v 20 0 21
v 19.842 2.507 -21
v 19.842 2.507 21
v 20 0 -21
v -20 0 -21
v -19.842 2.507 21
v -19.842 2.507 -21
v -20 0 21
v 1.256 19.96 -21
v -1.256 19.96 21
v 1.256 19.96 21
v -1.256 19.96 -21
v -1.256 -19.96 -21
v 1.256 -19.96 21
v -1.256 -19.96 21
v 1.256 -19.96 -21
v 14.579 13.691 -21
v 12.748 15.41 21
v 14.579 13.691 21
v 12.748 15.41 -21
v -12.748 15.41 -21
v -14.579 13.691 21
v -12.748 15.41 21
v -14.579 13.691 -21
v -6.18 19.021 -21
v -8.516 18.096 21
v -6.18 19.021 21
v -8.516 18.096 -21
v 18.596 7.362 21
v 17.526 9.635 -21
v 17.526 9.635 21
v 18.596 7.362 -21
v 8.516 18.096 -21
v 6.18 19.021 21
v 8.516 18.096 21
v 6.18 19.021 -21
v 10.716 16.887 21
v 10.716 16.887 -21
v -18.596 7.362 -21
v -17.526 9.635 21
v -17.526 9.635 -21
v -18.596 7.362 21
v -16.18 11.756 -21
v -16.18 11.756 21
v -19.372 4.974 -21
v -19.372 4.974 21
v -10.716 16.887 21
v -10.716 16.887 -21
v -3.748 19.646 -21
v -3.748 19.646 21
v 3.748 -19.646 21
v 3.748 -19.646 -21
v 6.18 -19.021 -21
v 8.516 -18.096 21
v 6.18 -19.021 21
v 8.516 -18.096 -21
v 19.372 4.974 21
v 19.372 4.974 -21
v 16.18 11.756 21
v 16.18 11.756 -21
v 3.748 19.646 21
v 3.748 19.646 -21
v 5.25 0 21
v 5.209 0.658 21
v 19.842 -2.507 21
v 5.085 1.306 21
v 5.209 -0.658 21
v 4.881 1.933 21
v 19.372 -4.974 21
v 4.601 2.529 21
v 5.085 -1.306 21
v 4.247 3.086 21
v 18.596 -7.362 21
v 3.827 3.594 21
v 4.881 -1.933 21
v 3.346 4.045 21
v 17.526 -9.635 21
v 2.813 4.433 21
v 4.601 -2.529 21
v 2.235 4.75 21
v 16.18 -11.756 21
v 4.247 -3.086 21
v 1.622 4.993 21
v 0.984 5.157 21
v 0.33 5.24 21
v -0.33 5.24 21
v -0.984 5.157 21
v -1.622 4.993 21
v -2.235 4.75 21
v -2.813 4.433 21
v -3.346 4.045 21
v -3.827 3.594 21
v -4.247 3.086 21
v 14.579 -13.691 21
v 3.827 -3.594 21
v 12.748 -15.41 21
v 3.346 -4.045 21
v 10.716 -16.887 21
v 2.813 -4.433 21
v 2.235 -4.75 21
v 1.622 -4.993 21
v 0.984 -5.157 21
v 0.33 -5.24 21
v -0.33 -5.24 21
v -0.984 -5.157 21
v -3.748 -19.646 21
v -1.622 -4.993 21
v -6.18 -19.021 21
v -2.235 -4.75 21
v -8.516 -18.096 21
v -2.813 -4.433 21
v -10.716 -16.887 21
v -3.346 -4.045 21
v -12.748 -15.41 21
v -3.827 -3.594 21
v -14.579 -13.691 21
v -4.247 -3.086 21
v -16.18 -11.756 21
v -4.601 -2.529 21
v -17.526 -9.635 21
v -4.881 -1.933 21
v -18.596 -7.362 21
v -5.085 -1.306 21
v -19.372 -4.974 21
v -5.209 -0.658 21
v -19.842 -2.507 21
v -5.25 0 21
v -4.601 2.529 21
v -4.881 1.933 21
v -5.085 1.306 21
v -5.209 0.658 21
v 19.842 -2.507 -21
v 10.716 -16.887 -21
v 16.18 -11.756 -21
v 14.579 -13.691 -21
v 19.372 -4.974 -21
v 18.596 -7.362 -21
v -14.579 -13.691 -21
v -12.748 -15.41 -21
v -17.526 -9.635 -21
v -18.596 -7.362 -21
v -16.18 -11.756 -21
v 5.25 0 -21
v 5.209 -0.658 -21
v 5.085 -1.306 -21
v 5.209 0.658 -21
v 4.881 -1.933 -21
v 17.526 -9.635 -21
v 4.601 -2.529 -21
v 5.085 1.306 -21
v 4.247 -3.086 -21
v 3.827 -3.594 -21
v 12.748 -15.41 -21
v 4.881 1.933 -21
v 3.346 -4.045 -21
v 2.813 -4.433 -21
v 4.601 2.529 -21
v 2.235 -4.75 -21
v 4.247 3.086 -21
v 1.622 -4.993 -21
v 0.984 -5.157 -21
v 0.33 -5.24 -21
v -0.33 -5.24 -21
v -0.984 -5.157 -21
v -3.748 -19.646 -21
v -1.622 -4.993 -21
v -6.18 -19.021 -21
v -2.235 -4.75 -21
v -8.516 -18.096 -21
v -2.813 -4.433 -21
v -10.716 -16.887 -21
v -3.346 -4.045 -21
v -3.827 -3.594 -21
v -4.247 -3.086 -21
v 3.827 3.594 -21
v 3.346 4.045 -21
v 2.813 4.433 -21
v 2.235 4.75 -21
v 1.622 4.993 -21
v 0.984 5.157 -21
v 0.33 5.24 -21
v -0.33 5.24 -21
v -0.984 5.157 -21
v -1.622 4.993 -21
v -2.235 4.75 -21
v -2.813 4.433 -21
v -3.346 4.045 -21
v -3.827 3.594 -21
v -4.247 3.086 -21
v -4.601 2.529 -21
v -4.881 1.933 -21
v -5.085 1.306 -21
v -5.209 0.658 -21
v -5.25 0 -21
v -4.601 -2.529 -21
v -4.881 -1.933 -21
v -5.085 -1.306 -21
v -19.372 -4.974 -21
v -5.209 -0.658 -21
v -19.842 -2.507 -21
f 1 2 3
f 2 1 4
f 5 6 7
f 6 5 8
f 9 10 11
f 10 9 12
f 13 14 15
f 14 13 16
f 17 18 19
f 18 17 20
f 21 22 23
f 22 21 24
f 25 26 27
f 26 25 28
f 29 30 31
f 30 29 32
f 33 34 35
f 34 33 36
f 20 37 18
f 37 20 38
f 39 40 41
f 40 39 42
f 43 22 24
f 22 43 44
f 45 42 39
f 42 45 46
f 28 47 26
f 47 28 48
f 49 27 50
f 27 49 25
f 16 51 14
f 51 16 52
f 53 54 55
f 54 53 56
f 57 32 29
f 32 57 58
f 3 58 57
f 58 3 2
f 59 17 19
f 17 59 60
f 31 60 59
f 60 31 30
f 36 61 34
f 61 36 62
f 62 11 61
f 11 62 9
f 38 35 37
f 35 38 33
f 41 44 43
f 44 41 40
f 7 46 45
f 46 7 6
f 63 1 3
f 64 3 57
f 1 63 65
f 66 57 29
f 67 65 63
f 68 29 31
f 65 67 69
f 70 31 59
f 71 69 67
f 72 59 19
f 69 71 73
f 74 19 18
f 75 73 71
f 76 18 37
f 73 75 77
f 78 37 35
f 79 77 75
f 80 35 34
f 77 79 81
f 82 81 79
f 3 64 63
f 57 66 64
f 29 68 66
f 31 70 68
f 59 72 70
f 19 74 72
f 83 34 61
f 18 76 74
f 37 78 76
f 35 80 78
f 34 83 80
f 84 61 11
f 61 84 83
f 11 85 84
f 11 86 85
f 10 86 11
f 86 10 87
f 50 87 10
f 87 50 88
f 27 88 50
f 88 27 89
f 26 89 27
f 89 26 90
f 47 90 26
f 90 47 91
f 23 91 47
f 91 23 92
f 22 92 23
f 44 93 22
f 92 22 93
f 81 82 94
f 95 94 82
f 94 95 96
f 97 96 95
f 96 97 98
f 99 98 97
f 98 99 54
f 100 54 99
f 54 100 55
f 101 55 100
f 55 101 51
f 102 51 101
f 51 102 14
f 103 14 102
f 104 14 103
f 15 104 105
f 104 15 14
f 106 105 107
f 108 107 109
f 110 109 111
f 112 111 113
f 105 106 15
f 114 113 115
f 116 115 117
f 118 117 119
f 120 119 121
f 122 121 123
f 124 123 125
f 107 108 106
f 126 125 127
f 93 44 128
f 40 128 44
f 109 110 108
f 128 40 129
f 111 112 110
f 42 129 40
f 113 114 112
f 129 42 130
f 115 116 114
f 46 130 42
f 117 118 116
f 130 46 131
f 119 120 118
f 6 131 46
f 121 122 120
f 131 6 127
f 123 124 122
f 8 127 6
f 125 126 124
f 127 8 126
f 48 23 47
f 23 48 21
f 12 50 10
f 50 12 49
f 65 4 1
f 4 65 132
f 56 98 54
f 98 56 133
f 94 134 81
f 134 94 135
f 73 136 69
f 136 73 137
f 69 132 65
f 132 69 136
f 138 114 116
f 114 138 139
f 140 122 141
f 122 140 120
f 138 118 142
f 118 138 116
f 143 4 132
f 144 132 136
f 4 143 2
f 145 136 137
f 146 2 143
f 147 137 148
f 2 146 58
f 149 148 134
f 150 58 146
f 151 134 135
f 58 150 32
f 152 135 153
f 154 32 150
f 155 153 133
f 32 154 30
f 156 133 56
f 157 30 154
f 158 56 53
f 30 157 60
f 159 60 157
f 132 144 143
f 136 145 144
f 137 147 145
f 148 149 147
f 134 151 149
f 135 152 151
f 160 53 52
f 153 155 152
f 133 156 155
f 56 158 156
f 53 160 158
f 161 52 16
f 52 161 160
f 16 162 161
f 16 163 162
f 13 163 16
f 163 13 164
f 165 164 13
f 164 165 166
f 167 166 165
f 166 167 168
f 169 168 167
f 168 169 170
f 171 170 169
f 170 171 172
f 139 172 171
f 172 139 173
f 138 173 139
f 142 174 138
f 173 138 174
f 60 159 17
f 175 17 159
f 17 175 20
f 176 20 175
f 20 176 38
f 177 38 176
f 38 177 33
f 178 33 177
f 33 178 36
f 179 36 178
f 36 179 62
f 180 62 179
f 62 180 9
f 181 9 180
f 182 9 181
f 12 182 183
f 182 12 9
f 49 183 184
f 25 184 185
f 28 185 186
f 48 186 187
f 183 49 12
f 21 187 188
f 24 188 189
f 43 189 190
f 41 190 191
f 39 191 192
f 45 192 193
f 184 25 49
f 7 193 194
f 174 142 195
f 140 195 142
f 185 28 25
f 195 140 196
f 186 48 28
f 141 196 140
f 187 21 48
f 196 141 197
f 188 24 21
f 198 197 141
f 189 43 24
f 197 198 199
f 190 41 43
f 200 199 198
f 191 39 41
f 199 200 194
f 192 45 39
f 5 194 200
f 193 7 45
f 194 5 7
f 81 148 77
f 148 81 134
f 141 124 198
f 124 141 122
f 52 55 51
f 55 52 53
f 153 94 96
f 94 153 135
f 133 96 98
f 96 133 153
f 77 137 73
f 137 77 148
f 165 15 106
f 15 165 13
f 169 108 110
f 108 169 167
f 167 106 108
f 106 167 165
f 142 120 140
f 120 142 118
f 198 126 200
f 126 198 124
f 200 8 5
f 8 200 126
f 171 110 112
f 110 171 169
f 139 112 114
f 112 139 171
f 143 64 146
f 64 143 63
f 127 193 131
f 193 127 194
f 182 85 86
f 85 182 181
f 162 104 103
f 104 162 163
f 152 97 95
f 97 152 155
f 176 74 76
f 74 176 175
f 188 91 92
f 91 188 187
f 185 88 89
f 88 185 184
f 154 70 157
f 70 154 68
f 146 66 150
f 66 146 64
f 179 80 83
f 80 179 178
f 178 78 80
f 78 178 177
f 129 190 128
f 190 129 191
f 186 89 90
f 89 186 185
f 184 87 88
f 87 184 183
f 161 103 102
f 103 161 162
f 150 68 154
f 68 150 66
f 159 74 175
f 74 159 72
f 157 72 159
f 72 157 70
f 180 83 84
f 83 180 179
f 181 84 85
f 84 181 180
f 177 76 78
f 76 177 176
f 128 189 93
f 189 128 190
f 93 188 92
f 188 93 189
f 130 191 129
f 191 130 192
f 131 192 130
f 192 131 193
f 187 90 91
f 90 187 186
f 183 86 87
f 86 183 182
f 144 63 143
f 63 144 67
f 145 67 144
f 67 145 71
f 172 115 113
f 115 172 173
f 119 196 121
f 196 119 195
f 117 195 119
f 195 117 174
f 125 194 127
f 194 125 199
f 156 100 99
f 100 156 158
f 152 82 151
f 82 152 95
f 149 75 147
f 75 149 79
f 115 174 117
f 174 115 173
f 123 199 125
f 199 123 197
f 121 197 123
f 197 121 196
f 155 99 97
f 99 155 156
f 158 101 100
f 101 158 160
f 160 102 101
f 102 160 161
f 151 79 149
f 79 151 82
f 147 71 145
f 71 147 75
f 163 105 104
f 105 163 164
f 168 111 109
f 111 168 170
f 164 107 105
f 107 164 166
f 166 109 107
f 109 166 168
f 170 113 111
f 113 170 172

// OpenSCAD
$fn = 50;


difference() {
	union() {
		translate(v = [0, 0, -21.0000000000]) {
			cylinder(h = 42, r = 20.0000000000);
		}
	}
	union() {
		translate(v = [0, 0, -100.0000000000]) {
			cylinder(h = 200, r = 5.2500000000);
		}
	}
}
